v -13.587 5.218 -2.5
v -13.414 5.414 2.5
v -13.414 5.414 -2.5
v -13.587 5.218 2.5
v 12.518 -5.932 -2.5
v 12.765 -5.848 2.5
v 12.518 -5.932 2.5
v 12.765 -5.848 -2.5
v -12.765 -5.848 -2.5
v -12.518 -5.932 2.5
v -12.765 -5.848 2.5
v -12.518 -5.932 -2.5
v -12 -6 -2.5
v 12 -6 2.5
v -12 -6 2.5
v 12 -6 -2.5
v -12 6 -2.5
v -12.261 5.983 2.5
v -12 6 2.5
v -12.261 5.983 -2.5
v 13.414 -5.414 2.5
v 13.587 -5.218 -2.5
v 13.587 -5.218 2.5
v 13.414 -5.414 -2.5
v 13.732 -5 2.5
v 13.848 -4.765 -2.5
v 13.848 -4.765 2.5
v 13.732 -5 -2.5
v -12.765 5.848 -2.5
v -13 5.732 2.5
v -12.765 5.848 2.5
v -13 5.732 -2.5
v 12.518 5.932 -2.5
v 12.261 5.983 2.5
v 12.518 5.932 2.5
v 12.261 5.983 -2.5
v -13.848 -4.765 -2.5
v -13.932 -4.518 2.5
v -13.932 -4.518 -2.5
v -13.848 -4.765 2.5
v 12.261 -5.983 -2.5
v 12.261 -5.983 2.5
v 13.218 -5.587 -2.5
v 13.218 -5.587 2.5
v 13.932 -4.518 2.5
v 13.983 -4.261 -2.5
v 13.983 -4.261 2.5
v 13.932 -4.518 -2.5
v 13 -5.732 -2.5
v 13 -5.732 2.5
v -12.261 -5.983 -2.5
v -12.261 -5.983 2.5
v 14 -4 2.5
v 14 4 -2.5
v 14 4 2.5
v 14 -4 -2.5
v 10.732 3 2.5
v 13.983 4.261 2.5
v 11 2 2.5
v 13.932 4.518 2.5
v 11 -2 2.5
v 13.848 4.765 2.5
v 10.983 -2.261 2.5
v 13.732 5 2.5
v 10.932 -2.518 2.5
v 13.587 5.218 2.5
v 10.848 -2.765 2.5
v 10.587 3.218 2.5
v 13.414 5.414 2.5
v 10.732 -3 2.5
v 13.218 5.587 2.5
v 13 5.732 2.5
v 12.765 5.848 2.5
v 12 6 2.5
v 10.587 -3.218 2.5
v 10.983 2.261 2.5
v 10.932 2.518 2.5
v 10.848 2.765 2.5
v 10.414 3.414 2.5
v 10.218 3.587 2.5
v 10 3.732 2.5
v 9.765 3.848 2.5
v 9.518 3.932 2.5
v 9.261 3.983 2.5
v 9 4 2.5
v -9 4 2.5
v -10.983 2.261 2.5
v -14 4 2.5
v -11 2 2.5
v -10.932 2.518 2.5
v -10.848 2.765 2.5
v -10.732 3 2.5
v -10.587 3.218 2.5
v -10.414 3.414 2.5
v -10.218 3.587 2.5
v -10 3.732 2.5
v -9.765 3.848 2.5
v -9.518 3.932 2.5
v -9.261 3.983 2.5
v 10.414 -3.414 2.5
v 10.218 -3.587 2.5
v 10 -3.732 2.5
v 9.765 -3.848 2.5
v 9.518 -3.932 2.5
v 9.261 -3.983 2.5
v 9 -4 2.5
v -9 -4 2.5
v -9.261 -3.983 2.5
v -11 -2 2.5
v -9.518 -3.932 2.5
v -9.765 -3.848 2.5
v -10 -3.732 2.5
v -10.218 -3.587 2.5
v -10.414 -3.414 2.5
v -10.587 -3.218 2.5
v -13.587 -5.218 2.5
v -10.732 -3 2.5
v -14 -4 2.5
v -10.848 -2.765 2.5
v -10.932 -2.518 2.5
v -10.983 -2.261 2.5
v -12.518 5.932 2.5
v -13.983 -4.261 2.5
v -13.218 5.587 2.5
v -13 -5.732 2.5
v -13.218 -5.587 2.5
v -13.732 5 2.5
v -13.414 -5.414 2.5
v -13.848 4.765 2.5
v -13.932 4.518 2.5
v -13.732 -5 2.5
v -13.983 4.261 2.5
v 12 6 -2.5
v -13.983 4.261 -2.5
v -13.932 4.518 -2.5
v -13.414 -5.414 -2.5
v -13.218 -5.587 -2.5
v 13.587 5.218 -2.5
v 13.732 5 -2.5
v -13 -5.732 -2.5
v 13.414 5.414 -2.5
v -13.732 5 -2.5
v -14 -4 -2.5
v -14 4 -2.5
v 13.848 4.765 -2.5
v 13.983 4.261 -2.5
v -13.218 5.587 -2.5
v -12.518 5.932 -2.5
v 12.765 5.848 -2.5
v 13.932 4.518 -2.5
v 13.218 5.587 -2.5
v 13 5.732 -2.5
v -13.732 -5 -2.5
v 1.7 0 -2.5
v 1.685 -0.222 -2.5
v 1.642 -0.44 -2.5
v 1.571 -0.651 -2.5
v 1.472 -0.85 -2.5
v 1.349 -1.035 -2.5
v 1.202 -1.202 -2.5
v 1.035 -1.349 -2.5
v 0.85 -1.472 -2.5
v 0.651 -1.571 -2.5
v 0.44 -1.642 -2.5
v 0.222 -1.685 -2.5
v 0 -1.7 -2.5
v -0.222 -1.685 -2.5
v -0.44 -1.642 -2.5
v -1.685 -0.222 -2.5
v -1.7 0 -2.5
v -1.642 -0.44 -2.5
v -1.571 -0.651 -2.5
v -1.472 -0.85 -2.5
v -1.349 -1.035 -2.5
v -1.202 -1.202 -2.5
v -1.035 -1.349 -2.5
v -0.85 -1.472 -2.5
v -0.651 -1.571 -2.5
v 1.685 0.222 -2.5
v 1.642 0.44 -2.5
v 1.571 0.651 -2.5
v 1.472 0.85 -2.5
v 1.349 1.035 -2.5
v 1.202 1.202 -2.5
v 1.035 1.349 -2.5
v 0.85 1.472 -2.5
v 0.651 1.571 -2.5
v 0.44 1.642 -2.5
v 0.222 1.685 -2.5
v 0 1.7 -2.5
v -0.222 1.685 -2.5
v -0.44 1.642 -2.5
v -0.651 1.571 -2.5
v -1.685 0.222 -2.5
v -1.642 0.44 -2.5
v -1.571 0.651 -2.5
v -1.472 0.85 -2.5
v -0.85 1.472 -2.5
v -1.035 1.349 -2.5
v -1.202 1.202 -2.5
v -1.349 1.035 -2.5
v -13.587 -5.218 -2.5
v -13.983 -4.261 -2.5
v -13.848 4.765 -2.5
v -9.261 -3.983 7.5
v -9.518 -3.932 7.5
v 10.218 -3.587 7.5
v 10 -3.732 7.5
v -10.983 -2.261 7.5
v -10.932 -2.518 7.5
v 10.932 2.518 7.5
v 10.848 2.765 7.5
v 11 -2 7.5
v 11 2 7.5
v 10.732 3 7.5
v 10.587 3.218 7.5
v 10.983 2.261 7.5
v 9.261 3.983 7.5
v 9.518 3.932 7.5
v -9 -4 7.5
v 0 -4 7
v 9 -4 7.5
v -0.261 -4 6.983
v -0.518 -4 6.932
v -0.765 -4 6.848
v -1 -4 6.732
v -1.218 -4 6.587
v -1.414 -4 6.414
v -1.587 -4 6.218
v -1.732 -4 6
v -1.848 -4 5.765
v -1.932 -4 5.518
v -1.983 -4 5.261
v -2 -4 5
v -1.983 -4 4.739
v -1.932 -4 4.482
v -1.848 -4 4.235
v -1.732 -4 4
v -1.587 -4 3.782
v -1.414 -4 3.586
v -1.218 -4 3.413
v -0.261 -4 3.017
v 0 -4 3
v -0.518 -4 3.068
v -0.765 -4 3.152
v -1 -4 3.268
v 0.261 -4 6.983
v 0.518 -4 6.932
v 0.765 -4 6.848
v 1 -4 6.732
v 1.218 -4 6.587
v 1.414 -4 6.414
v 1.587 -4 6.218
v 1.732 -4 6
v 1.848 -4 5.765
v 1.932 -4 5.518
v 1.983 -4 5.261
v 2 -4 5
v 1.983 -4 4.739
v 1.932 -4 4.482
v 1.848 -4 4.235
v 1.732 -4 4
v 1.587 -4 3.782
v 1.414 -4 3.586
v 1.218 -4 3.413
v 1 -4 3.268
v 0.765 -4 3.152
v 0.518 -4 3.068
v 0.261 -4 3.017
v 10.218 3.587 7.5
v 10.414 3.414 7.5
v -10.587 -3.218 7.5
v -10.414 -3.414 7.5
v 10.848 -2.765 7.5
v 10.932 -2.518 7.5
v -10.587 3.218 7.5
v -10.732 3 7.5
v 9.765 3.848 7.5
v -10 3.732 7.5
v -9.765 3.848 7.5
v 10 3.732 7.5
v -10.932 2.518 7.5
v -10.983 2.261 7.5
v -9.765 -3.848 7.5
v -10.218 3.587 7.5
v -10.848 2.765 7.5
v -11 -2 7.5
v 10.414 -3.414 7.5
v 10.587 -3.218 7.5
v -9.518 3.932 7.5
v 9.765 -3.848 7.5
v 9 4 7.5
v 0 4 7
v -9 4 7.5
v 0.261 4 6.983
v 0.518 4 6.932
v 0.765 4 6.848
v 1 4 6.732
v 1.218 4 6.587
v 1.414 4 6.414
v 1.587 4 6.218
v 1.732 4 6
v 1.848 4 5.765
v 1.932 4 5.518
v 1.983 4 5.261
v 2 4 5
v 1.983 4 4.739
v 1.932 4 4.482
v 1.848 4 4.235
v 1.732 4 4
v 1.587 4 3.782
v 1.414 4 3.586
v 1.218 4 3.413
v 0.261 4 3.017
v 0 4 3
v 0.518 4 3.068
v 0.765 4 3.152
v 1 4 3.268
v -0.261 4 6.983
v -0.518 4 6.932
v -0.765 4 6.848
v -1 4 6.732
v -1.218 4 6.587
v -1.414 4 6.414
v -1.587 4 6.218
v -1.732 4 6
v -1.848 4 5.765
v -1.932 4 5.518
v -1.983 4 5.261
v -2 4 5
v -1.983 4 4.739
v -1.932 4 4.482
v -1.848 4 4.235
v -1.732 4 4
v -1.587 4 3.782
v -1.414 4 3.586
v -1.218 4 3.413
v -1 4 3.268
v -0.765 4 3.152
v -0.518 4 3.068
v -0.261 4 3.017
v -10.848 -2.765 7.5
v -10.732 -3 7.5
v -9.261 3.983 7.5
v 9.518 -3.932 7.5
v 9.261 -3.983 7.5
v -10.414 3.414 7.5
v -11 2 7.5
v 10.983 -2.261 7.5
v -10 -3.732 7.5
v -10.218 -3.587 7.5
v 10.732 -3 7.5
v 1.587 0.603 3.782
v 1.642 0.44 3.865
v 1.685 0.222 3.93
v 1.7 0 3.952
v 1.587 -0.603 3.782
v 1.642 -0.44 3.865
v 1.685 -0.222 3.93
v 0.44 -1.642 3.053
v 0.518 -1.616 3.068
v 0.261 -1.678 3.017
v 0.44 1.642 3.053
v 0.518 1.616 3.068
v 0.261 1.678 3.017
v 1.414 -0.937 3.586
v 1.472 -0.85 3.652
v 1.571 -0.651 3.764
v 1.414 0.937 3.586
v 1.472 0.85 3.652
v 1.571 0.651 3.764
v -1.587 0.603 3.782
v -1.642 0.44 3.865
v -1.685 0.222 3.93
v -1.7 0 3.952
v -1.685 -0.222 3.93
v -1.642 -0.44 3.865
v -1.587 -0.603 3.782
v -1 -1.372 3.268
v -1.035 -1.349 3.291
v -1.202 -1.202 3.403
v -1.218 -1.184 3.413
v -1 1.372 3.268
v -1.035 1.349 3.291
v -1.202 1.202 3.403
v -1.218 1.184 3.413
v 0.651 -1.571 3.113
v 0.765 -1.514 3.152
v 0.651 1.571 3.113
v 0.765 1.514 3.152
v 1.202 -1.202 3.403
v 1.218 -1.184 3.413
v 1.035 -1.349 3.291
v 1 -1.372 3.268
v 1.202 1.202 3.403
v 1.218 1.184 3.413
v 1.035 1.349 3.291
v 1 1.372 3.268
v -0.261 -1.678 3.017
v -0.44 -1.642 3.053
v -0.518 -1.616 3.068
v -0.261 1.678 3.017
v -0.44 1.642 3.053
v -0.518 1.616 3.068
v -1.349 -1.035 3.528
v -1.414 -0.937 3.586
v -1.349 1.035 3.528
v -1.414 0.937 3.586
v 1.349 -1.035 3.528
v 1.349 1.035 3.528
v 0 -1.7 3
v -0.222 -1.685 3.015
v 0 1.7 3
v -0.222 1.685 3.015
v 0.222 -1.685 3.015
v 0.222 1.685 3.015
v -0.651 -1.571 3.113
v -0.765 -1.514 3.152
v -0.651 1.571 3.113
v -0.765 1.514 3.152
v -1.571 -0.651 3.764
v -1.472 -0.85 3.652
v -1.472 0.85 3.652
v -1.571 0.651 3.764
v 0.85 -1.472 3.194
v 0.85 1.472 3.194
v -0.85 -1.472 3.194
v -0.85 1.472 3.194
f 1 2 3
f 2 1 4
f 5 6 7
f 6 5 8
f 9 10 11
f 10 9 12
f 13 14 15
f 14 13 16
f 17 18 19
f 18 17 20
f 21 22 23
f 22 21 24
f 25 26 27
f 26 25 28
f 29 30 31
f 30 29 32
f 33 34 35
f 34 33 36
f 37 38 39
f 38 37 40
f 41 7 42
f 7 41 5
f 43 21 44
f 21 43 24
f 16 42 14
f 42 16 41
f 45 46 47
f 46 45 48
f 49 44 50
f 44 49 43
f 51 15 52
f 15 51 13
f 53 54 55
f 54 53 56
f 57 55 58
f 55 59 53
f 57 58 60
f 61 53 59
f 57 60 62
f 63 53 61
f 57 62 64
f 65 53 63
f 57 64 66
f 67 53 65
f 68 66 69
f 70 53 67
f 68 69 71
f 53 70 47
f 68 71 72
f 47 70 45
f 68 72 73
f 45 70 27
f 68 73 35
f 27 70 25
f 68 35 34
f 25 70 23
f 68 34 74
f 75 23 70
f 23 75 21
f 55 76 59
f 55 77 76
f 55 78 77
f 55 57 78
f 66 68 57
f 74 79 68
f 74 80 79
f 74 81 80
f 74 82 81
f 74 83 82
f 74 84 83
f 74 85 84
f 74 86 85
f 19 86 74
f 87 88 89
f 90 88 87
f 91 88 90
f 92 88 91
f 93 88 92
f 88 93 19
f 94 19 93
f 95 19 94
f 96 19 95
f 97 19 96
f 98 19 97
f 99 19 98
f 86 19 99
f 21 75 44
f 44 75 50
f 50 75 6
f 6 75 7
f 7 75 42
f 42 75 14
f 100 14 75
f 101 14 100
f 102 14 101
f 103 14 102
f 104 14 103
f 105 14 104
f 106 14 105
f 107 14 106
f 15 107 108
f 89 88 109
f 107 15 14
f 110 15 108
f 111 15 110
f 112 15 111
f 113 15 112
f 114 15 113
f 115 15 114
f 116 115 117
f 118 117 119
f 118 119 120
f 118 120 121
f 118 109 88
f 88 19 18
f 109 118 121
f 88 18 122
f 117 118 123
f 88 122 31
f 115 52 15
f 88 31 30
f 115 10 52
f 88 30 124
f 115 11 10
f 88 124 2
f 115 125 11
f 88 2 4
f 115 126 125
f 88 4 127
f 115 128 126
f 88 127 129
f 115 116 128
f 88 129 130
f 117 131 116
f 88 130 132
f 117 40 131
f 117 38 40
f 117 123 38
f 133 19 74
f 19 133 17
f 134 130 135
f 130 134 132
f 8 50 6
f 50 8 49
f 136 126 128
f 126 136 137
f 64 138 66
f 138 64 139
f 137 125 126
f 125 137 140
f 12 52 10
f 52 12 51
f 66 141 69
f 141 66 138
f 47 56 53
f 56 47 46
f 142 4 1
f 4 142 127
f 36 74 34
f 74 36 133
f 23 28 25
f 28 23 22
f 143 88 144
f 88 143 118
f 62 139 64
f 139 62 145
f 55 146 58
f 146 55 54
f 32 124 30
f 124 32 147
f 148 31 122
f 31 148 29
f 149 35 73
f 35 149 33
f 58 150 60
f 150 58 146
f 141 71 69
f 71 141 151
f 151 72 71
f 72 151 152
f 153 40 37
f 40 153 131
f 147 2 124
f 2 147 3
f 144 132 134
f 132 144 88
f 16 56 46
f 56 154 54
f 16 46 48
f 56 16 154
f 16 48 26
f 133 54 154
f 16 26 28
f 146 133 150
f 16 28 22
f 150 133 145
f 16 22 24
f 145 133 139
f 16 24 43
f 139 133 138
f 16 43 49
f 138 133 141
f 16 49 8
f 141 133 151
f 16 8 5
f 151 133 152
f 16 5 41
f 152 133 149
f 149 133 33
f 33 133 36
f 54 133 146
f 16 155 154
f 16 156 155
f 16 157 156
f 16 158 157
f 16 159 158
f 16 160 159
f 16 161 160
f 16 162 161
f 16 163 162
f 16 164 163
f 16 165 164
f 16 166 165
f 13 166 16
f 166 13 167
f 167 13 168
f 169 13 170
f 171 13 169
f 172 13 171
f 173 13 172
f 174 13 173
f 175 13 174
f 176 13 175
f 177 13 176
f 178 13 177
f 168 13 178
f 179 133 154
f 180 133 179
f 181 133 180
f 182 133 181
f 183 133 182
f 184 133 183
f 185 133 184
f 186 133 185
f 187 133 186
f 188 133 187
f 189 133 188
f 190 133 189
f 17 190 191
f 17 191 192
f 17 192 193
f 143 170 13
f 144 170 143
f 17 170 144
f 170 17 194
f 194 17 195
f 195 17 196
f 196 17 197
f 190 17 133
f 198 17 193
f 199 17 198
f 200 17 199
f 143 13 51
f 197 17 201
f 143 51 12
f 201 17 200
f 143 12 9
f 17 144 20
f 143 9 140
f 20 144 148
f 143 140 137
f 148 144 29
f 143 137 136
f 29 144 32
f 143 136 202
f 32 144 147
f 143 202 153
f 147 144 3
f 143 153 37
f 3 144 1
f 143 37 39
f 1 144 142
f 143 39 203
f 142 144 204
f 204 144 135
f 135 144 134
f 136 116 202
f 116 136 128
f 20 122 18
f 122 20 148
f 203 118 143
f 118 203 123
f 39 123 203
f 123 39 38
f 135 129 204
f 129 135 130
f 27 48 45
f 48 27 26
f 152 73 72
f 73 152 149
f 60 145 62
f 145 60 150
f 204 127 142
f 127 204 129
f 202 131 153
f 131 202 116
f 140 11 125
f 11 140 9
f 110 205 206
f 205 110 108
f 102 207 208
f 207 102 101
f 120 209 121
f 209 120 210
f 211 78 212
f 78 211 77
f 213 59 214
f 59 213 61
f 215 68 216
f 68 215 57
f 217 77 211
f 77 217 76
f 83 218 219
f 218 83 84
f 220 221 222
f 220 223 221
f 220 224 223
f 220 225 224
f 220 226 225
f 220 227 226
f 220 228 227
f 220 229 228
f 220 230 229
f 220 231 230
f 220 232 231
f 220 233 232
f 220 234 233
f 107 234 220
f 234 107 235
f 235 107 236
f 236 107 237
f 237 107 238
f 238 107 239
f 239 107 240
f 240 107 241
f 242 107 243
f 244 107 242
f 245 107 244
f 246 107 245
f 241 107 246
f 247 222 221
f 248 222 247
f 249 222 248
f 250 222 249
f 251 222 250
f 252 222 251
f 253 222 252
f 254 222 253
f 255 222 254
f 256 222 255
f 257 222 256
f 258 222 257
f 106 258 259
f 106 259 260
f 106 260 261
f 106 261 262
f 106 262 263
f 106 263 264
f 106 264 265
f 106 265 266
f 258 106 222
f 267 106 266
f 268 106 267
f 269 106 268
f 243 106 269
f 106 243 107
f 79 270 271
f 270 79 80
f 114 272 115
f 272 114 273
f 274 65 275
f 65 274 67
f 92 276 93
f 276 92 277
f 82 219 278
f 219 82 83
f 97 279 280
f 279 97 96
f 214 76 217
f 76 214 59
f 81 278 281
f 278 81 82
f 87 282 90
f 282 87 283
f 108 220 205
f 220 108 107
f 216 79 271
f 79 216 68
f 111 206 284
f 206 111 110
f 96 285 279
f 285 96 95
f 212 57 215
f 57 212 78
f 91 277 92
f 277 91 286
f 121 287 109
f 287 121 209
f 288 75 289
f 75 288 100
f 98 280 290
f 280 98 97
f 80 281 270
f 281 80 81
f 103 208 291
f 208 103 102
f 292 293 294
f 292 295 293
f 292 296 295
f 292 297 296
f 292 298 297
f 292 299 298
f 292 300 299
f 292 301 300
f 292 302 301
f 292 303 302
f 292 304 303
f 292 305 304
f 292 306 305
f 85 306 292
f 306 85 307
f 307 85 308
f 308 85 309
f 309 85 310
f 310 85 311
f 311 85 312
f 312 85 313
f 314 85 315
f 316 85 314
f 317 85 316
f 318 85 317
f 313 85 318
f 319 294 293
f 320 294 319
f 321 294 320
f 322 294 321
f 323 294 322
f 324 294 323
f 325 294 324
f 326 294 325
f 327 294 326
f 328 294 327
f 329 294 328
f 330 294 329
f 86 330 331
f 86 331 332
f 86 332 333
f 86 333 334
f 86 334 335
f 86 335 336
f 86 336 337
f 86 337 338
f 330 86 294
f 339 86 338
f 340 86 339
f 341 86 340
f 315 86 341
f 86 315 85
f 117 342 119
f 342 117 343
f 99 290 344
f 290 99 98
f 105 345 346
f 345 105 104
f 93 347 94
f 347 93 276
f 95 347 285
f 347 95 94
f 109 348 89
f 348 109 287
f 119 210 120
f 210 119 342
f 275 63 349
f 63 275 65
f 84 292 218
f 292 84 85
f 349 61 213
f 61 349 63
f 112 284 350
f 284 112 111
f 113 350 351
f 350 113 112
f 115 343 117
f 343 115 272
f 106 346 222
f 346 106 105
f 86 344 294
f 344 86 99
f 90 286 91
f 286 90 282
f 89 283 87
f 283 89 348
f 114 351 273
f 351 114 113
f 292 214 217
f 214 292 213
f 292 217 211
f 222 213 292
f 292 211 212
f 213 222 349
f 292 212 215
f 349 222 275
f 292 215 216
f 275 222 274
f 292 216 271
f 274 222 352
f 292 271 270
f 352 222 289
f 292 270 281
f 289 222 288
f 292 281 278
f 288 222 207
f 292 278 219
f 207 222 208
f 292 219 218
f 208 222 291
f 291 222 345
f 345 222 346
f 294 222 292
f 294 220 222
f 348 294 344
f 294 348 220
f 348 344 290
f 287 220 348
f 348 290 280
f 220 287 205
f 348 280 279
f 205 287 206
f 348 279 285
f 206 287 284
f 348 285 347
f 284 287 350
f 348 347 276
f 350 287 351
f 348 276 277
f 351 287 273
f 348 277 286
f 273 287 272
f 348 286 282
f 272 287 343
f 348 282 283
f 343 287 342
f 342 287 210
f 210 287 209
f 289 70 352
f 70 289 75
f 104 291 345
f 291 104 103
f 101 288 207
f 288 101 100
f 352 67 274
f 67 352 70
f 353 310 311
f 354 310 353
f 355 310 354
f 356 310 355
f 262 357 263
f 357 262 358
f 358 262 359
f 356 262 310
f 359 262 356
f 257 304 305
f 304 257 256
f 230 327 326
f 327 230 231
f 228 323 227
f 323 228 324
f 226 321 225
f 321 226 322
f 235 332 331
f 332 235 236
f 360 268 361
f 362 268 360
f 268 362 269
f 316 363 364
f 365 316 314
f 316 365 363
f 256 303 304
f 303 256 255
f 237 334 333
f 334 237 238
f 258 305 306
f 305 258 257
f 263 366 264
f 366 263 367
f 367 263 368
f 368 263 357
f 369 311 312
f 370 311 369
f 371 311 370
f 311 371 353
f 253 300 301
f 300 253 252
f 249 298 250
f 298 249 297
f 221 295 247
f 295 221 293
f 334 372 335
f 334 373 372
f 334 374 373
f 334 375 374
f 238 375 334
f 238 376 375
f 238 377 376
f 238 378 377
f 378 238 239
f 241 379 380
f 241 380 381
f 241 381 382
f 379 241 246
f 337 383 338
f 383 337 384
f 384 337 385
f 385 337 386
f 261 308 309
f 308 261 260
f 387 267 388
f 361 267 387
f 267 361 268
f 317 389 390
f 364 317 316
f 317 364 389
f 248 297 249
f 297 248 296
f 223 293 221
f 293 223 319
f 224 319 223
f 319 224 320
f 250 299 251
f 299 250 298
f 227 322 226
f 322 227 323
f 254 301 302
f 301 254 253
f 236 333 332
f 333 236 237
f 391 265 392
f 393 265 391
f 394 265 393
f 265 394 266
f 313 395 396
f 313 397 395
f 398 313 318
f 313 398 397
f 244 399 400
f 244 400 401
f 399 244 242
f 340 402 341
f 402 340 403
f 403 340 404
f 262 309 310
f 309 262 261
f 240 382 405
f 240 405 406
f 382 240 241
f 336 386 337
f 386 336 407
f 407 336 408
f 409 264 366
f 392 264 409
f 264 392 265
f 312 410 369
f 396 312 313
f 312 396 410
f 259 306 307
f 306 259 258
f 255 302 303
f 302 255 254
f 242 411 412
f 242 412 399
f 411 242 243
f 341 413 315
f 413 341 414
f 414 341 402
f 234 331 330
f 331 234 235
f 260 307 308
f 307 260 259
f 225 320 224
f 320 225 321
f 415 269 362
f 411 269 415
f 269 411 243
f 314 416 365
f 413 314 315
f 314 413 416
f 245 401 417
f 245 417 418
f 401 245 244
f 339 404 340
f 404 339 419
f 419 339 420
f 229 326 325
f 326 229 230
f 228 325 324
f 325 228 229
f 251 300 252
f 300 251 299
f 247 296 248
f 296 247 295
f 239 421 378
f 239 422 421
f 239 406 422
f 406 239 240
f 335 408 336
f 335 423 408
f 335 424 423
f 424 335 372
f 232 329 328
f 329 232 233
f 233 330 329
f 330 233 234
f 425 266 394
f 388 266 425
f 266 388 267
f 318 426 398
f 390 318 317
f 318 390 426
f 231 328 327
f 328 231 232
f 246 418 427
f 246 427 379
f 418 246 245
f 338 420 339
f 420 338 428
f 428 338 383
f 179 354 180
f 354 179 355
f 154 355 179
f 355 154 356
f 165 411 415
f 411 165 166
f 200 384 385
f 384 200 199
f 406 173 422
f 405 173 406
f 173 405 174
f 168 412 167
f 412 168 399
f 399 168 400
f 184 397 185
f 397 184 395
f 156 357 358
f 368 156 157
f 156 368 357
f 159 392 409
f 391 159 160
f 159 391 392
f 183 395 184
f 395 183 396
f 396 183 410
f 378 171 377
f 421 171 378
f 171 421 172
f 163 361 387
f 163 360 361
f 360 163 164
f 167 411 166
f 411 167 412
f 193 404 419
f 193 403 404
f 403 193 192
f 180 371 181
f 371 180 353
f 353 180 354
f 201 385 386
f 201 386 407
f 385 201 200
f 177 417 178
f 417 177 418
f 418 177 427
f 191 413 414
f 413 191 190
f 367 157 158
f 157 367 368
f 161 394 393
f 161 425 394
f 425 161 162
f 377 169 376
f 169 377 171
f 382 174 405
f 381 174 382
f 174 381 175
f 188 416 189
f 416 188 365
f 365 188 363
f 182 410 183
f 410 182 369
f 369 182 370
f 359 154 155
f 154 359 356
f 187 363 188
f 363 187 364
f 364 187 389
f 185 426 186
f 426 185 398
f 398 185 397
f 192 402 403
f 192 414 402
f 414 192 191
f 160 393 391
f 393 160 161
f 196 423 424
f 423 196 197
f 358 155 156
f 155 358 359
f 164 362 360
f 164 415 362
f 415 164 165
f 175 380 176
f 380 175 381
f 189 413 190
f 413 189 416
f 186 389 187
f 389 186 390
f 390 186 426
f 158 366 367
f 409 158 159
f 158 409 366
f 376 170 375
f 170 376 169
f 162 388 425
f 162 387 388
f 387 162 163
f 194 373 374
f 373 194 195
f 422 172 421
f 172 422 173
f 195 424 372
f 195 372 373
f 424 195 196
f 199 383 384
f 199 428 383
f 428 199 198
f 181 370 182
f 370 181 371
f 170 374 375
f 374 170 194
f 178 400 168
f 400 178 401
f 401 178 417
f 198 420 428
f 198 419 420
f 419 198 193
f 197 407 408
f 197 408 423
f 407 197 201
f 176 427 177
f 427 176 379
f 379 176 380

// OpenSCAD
// file: common.scad
// Shared Rev A CAD parameters and helper modules.
// Units: millimeters.

$fn = 48;

// Hitec HS-625MG vendor baseline. Verify with calipers before final print.
servo_l = 40.6;
servo_w = 19.8;
servo_h = 37.8;
spline_d = 6.0;
spline_h = 5.0;
servo_mount_slot_l = 9.0;
servo_mount_slot_w = 3.4;
servo_mount_span_x = 49.5;
servo_mount_span_y = 27.5;

// Rev A structure.
base_l = 160;
base_w = 120;
base_t = 6;
wall_t = 6;
mount_t = 5;
outer_w = 95;
outer_h = 95;
outer_depth = 16;
inner_w = 55;
inner_h = 72;
nozzle_l = 85;
nozzle_d = 24;
imu_l = 28;
imu_w = 22;
bearing_d = 8.0;
shaft_d = 4.0;

// Manufacturing assumptions.
m3_clearance_d = 3.4;
bench_fastener_d = 5.0;
fillet_r = 3.0;

module rounded_plate(size_xyz, r=3) {
    hull() {
        for (x=[-size_xyz[0]/2+r, size_xyz[0]/2-r])
            for (y=[-size_xyz[1]/2+r, size_xyz[1]/2-r])
                translate([x, y, 0])
                    cylinder(h=size_xyz[2], r=r, center=true);
    }
}

module slotted_hole(slot_l, slot_w, h=2) {
    hull() {
        translate([-slot_l/2 + slot_w/2, 0, 0])
            cylinder(h=h, d=slot_w, center=true);
        translate([slot_l/2 - slot_w/2, 0, 0])
            cylinder(h=h, d=slot_w, center=true);
    }
}

module servo_mount_plate() {
    difference() {
        rounded_plate([servo_mount_span_x + 18, servo_mount_span_y + 16, mount_t], 2);

        for (x=[-servo_mount_span_x/2, servo_mount_span_x/2])
            for (y=[-servo_mount_span_y/2, servo_mount_span_y/2])
                translate([x, y, 0])
                    slotted_hole(servo_mount_slot_l, servo_mount_slot_w, mount_t + 1);
    }
}

module servo_body_clearance(extra=1.0) {
    cube([servo_l + extra, servo_w + extra, servo_h + extra], center=true);
}

module shaft_clearance(h=120) {
    rotate([90, 0, 0])
        cylinder(h=h, d=shaft_d + 0.6, center=true);
}

module imu_pad() {
    difference() {
        rounded_plate([imu_l + 8, imu_w + 8, 3], 2);
        for (x=[-(imu_l/2 - 4), imu_l/2 - 4])
            for (y=[-(imu_w/2 - 4), imu_w/2 - 4])
                translate([x, y, 0])
                    cylinder(h=4, d=2.2, center=true);
    }
}
// main file
include <common.scad>

// Rev A wire strain-relief clip.
// Print flat. Use near rotation axes to keep wire stiffness from becoming a torque spring.

difference() {
    union() {
        rounded_plate([28, 12, 5], 2);
        translate([0, 0, 5])
            rounded_plate([22, 8, 5], 2);
    }

    // Wire channel.
    translate([0, 0, 5])
        rotate([90, 0, 0])
            cylinder(h=14, d=4.0, center=true);

    // Mount screw.
    translate([0, 0, 0])
        cylinder(h=12, d=m3_clearance_d, center=true);
}
